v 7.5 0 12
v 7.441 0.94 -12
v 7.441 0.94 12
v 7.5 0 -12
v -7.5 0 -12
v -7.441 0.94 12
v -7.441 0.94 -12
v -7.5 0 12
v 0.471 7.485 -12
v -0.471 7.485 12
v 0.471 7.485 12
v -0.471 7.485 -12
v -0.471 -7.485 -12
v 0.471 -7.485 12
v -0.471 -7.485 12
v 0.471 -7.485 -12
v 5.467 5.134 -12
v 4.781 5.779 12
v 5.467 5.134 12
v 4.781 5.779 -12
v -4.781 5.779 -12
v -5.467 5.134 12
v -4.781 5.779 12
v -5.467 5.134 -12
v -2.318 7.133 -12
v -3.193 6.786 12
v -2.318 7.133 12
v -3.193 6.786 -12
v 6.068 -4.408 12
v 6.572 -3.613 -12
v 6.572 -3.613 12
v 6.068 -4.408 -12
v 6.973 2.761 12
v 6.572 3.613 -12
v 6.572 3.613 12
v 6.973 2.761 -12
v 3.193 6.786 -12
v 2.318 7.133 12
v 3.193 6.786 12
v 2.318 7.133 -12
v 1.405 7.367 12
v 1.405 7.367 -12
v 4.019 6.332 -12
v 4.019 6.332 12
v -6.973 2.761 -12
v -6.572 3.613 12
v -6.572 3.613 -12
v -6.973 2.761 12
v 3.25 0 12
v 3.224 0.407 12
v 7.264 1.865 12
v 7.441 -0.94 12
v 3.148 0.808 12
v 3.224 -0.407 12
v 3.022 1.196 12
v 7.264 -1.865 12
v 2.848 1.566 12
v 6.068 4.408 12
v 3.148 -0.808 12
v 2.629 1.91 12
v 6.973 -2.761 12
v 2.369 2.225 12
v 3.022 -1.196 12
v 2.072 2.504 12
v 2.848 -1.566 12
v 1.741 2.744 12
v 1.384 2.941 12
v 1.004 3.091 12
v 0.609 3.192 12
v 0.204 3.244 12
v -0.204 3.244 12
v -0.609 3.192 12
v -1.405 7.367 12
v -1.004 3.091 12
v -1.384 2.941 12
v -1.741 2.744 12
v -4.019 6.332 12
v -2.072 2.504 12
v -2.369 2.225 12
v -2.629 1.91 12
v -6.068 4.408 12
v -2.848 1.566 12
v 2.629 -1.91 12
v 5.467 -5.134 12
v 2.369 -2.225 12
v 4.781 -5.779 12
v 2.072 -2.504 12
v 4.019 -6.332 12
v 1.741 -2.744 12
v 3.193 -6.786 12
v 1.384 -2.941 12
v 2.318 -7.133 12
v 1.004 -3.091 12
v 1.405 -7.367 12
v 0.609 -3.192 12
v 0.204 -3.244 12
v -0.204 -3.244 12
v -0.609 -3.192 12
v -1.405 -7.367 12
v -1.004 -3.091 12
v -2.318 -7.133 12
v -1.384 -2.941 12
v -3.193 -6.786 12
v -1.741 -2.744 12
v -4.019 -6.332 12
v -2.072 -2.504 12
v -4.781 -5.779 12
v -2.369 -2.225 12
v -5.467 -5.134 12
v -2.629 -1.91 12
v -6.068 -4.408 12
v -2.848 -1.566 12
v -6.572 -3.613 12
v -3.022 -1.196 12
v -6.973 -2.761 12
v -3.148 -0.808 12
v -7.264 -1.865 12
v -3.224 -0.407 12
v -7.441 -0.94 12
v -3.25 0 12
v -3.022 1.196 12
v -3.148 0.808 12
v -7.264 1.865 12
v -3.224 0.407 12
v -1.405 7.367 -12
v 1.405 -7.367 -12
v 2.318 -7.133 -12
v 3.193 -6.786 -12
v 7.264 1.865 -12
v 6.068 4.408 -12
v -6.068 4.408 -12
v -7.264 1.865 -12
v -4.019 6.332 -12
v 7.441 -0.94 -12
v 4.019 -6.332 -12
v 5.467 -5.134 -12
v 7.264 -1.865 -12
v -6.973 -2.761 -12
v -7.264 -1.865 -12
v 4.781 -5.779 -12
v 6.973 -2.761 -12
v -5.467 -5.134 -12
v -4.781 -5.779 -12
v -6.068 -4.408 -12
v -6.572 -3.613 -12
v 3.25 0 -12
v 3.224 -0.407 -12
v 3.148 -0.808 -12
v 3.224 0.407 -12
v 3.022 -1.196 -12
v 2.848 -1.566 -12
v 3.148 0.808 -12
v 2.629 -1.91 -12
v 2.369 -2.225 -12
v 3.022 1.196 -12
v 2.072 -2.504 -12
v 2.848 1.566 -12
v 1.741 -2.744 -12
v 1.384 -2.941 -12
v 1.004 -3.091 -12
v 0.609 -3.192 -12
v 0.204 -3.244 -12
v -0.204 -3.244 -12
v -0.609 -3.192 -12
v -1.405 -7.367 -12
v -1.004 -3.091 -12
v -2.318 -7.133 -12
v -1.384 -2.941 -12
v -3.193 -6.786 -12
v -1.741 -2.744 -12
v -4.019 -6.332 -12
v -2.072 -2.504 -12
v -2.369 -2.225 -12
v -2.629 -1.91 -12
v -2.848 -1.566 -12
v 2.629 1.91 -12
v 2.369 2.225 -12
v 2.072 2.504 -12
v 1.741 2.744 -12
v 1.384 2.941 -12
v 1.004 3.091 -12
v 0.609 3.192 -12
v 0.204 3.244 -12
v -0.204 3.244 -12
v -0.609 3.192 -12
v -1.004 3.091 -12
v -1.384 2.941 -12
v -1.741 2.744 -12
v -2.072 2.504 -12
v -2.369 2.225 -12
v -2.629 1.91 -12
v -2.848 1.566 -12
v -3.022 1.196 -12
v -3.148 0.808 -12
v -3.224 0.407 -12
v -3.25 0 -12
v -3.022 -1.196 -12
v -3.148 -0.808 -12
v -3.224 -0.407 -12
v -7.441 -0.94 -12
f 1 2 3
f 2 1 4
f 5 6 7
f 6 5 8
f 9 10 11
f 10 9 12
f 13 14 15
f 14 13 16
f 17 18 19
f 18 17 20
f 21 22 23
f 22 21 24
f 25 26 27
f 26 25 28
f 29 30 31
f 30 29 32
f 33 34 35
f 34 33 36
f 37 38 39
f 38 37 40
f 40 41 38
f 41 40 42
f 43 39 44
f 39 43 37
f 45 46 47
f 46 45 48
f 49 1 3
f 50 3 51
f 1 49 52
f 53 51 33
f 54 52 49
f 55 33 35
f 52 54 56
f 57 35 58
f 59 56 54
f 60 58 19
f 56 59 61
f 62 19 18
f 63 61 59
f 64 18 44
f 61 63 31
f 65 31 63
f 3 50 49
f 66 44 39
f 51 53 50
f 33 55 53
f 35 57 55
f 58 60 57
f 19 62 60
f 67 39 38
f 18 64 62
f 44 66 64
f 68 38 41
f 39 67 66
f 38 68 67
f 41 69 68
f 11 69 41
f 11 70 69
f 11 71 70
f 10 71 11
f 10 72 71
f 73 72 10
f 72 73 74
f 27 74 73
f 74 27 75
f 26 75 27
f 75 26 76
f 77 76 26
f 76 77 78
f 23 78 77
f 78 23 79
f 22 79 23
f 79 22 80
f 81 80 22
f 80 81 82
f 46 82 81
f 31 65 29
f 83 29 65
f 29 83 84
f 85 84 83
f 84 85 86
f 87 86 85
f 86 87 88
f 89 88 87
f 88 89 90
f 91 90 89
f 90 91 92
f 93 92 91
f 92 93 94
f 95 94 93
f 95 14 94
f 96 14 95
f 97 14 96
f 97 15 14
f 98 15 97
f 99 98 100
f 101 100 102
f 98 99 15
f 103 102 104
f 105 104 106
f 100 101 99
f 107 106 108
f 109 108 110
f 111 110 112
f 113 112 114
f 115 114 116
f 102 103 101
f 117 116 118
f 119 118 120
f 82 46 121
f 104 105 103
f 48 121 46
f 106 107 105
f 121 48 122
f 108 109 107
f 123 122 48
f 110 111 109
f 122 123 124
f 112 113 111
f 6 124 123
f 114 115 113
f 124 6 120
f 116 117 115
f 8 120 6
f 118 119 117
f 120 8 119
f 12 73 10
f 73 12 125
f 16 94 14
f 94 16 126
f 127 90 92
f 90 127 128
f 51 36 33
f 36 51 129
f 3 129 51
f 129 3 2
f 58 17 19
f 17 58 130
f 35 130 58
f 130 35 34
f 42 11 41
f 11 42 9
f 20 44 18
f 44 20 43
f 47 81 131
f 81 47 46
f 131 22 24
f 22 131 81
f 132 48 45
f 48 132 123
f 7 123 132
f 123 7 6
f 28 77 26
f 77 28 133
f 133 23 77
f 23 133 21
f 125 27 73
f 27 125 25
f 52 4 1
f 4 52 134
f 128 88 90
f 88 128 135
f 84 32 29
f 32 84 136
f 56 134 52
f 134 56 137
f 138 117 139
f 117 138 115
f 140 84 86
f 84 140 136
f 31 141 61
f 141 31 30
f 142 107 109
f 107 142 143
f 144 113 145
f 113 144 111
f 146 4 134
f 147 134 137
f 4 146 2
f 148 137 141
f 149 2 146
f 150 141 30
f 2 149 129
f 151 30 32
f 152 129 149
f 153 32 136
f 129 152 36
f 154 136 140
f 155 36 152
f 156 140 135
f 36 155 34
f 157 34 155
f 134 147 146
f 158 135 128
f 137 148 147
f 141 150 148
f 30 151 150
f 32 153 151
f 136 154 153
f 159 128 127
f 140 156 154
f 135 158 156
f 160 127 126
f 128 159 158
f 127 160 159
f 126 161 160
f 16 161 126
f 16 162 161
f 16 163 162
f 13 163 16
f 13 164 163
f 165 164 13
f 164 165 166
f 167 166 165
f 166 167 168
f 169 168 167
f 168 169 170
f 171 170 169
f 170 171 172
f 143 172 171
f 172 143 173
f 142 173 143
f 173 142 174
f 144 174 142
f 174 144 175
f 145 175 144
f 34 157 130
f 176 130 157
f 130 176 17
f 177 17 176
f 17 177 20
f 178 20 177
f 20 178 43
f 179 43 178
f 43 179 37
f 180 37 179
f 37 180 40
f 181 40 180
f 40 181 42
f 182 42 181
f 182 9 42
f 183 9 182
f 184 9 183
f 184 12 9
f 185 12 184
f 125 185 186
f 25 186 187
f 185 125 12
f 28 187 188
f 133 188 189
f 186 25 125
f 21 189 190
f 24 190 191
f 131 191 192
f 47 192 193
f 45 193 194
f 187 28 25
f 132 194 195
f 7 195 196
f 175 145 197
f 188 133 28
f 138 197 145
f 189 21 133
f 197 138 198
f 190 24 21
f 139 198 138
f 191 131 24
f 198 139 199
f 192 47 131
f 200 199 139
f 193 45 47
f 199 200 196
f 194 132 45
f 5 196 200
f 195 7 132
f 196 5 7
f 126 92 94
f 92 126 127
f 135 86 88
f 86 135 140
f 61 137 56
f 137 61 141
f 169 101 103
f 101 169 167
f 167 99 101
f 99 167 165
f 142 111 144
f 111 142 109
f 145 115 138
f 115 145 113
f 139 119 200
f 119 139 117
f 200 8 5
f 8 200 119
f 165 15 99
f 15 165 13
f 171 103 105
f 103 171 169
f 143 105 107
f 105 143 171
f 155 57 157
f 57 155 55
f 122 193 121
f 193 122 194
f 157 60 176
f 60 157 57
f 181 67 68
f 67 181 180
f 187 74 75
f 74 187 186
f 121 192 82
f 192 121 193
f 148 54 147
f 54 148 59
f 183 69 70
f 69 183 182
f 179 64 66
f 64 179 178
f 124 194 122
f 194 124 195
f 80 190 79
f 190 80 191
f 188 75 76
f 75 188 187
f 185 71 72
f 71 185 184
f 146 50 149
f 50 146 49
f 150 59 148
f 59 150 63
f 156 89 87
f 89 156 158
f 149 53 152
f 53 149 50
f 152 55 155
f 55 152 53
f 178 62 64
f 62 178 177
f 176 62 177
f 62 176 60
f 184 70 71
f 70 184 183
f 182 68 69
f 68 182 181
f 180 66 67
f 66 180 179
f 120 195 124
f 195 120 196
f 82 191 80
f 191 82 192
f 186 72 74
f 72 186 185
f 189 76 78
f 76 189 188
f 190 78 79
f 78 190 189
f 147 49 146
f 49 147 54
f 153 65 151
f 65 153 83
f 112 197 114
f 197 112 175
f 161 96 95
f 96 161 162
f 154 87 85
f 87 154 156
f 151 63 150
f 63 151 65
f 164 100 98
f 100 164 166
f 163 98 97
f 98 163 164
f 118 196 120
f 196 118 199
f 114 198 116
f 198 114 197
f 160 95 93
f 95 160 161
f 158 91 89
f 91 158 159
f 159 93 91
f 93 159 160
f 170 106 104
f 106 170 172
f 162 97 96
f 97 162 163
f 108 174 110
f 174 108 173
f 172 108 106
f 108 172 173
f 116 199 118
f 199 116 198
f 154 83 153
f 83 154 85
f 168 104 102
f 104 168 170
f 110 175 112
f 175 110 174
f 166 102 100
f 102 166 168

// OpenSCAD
$fn = 50;


difference() {
	union() {
		translate(v = [0, 0, -12.0000000000]) {
			cylinder(h = 24, r = 7.5000000000);
		}
	}
	union() {
		translate(v = [0, 0, -100.0000000000]) {
			cylinder(h = 200, r = 3.2500000000);
		}
	}
}
